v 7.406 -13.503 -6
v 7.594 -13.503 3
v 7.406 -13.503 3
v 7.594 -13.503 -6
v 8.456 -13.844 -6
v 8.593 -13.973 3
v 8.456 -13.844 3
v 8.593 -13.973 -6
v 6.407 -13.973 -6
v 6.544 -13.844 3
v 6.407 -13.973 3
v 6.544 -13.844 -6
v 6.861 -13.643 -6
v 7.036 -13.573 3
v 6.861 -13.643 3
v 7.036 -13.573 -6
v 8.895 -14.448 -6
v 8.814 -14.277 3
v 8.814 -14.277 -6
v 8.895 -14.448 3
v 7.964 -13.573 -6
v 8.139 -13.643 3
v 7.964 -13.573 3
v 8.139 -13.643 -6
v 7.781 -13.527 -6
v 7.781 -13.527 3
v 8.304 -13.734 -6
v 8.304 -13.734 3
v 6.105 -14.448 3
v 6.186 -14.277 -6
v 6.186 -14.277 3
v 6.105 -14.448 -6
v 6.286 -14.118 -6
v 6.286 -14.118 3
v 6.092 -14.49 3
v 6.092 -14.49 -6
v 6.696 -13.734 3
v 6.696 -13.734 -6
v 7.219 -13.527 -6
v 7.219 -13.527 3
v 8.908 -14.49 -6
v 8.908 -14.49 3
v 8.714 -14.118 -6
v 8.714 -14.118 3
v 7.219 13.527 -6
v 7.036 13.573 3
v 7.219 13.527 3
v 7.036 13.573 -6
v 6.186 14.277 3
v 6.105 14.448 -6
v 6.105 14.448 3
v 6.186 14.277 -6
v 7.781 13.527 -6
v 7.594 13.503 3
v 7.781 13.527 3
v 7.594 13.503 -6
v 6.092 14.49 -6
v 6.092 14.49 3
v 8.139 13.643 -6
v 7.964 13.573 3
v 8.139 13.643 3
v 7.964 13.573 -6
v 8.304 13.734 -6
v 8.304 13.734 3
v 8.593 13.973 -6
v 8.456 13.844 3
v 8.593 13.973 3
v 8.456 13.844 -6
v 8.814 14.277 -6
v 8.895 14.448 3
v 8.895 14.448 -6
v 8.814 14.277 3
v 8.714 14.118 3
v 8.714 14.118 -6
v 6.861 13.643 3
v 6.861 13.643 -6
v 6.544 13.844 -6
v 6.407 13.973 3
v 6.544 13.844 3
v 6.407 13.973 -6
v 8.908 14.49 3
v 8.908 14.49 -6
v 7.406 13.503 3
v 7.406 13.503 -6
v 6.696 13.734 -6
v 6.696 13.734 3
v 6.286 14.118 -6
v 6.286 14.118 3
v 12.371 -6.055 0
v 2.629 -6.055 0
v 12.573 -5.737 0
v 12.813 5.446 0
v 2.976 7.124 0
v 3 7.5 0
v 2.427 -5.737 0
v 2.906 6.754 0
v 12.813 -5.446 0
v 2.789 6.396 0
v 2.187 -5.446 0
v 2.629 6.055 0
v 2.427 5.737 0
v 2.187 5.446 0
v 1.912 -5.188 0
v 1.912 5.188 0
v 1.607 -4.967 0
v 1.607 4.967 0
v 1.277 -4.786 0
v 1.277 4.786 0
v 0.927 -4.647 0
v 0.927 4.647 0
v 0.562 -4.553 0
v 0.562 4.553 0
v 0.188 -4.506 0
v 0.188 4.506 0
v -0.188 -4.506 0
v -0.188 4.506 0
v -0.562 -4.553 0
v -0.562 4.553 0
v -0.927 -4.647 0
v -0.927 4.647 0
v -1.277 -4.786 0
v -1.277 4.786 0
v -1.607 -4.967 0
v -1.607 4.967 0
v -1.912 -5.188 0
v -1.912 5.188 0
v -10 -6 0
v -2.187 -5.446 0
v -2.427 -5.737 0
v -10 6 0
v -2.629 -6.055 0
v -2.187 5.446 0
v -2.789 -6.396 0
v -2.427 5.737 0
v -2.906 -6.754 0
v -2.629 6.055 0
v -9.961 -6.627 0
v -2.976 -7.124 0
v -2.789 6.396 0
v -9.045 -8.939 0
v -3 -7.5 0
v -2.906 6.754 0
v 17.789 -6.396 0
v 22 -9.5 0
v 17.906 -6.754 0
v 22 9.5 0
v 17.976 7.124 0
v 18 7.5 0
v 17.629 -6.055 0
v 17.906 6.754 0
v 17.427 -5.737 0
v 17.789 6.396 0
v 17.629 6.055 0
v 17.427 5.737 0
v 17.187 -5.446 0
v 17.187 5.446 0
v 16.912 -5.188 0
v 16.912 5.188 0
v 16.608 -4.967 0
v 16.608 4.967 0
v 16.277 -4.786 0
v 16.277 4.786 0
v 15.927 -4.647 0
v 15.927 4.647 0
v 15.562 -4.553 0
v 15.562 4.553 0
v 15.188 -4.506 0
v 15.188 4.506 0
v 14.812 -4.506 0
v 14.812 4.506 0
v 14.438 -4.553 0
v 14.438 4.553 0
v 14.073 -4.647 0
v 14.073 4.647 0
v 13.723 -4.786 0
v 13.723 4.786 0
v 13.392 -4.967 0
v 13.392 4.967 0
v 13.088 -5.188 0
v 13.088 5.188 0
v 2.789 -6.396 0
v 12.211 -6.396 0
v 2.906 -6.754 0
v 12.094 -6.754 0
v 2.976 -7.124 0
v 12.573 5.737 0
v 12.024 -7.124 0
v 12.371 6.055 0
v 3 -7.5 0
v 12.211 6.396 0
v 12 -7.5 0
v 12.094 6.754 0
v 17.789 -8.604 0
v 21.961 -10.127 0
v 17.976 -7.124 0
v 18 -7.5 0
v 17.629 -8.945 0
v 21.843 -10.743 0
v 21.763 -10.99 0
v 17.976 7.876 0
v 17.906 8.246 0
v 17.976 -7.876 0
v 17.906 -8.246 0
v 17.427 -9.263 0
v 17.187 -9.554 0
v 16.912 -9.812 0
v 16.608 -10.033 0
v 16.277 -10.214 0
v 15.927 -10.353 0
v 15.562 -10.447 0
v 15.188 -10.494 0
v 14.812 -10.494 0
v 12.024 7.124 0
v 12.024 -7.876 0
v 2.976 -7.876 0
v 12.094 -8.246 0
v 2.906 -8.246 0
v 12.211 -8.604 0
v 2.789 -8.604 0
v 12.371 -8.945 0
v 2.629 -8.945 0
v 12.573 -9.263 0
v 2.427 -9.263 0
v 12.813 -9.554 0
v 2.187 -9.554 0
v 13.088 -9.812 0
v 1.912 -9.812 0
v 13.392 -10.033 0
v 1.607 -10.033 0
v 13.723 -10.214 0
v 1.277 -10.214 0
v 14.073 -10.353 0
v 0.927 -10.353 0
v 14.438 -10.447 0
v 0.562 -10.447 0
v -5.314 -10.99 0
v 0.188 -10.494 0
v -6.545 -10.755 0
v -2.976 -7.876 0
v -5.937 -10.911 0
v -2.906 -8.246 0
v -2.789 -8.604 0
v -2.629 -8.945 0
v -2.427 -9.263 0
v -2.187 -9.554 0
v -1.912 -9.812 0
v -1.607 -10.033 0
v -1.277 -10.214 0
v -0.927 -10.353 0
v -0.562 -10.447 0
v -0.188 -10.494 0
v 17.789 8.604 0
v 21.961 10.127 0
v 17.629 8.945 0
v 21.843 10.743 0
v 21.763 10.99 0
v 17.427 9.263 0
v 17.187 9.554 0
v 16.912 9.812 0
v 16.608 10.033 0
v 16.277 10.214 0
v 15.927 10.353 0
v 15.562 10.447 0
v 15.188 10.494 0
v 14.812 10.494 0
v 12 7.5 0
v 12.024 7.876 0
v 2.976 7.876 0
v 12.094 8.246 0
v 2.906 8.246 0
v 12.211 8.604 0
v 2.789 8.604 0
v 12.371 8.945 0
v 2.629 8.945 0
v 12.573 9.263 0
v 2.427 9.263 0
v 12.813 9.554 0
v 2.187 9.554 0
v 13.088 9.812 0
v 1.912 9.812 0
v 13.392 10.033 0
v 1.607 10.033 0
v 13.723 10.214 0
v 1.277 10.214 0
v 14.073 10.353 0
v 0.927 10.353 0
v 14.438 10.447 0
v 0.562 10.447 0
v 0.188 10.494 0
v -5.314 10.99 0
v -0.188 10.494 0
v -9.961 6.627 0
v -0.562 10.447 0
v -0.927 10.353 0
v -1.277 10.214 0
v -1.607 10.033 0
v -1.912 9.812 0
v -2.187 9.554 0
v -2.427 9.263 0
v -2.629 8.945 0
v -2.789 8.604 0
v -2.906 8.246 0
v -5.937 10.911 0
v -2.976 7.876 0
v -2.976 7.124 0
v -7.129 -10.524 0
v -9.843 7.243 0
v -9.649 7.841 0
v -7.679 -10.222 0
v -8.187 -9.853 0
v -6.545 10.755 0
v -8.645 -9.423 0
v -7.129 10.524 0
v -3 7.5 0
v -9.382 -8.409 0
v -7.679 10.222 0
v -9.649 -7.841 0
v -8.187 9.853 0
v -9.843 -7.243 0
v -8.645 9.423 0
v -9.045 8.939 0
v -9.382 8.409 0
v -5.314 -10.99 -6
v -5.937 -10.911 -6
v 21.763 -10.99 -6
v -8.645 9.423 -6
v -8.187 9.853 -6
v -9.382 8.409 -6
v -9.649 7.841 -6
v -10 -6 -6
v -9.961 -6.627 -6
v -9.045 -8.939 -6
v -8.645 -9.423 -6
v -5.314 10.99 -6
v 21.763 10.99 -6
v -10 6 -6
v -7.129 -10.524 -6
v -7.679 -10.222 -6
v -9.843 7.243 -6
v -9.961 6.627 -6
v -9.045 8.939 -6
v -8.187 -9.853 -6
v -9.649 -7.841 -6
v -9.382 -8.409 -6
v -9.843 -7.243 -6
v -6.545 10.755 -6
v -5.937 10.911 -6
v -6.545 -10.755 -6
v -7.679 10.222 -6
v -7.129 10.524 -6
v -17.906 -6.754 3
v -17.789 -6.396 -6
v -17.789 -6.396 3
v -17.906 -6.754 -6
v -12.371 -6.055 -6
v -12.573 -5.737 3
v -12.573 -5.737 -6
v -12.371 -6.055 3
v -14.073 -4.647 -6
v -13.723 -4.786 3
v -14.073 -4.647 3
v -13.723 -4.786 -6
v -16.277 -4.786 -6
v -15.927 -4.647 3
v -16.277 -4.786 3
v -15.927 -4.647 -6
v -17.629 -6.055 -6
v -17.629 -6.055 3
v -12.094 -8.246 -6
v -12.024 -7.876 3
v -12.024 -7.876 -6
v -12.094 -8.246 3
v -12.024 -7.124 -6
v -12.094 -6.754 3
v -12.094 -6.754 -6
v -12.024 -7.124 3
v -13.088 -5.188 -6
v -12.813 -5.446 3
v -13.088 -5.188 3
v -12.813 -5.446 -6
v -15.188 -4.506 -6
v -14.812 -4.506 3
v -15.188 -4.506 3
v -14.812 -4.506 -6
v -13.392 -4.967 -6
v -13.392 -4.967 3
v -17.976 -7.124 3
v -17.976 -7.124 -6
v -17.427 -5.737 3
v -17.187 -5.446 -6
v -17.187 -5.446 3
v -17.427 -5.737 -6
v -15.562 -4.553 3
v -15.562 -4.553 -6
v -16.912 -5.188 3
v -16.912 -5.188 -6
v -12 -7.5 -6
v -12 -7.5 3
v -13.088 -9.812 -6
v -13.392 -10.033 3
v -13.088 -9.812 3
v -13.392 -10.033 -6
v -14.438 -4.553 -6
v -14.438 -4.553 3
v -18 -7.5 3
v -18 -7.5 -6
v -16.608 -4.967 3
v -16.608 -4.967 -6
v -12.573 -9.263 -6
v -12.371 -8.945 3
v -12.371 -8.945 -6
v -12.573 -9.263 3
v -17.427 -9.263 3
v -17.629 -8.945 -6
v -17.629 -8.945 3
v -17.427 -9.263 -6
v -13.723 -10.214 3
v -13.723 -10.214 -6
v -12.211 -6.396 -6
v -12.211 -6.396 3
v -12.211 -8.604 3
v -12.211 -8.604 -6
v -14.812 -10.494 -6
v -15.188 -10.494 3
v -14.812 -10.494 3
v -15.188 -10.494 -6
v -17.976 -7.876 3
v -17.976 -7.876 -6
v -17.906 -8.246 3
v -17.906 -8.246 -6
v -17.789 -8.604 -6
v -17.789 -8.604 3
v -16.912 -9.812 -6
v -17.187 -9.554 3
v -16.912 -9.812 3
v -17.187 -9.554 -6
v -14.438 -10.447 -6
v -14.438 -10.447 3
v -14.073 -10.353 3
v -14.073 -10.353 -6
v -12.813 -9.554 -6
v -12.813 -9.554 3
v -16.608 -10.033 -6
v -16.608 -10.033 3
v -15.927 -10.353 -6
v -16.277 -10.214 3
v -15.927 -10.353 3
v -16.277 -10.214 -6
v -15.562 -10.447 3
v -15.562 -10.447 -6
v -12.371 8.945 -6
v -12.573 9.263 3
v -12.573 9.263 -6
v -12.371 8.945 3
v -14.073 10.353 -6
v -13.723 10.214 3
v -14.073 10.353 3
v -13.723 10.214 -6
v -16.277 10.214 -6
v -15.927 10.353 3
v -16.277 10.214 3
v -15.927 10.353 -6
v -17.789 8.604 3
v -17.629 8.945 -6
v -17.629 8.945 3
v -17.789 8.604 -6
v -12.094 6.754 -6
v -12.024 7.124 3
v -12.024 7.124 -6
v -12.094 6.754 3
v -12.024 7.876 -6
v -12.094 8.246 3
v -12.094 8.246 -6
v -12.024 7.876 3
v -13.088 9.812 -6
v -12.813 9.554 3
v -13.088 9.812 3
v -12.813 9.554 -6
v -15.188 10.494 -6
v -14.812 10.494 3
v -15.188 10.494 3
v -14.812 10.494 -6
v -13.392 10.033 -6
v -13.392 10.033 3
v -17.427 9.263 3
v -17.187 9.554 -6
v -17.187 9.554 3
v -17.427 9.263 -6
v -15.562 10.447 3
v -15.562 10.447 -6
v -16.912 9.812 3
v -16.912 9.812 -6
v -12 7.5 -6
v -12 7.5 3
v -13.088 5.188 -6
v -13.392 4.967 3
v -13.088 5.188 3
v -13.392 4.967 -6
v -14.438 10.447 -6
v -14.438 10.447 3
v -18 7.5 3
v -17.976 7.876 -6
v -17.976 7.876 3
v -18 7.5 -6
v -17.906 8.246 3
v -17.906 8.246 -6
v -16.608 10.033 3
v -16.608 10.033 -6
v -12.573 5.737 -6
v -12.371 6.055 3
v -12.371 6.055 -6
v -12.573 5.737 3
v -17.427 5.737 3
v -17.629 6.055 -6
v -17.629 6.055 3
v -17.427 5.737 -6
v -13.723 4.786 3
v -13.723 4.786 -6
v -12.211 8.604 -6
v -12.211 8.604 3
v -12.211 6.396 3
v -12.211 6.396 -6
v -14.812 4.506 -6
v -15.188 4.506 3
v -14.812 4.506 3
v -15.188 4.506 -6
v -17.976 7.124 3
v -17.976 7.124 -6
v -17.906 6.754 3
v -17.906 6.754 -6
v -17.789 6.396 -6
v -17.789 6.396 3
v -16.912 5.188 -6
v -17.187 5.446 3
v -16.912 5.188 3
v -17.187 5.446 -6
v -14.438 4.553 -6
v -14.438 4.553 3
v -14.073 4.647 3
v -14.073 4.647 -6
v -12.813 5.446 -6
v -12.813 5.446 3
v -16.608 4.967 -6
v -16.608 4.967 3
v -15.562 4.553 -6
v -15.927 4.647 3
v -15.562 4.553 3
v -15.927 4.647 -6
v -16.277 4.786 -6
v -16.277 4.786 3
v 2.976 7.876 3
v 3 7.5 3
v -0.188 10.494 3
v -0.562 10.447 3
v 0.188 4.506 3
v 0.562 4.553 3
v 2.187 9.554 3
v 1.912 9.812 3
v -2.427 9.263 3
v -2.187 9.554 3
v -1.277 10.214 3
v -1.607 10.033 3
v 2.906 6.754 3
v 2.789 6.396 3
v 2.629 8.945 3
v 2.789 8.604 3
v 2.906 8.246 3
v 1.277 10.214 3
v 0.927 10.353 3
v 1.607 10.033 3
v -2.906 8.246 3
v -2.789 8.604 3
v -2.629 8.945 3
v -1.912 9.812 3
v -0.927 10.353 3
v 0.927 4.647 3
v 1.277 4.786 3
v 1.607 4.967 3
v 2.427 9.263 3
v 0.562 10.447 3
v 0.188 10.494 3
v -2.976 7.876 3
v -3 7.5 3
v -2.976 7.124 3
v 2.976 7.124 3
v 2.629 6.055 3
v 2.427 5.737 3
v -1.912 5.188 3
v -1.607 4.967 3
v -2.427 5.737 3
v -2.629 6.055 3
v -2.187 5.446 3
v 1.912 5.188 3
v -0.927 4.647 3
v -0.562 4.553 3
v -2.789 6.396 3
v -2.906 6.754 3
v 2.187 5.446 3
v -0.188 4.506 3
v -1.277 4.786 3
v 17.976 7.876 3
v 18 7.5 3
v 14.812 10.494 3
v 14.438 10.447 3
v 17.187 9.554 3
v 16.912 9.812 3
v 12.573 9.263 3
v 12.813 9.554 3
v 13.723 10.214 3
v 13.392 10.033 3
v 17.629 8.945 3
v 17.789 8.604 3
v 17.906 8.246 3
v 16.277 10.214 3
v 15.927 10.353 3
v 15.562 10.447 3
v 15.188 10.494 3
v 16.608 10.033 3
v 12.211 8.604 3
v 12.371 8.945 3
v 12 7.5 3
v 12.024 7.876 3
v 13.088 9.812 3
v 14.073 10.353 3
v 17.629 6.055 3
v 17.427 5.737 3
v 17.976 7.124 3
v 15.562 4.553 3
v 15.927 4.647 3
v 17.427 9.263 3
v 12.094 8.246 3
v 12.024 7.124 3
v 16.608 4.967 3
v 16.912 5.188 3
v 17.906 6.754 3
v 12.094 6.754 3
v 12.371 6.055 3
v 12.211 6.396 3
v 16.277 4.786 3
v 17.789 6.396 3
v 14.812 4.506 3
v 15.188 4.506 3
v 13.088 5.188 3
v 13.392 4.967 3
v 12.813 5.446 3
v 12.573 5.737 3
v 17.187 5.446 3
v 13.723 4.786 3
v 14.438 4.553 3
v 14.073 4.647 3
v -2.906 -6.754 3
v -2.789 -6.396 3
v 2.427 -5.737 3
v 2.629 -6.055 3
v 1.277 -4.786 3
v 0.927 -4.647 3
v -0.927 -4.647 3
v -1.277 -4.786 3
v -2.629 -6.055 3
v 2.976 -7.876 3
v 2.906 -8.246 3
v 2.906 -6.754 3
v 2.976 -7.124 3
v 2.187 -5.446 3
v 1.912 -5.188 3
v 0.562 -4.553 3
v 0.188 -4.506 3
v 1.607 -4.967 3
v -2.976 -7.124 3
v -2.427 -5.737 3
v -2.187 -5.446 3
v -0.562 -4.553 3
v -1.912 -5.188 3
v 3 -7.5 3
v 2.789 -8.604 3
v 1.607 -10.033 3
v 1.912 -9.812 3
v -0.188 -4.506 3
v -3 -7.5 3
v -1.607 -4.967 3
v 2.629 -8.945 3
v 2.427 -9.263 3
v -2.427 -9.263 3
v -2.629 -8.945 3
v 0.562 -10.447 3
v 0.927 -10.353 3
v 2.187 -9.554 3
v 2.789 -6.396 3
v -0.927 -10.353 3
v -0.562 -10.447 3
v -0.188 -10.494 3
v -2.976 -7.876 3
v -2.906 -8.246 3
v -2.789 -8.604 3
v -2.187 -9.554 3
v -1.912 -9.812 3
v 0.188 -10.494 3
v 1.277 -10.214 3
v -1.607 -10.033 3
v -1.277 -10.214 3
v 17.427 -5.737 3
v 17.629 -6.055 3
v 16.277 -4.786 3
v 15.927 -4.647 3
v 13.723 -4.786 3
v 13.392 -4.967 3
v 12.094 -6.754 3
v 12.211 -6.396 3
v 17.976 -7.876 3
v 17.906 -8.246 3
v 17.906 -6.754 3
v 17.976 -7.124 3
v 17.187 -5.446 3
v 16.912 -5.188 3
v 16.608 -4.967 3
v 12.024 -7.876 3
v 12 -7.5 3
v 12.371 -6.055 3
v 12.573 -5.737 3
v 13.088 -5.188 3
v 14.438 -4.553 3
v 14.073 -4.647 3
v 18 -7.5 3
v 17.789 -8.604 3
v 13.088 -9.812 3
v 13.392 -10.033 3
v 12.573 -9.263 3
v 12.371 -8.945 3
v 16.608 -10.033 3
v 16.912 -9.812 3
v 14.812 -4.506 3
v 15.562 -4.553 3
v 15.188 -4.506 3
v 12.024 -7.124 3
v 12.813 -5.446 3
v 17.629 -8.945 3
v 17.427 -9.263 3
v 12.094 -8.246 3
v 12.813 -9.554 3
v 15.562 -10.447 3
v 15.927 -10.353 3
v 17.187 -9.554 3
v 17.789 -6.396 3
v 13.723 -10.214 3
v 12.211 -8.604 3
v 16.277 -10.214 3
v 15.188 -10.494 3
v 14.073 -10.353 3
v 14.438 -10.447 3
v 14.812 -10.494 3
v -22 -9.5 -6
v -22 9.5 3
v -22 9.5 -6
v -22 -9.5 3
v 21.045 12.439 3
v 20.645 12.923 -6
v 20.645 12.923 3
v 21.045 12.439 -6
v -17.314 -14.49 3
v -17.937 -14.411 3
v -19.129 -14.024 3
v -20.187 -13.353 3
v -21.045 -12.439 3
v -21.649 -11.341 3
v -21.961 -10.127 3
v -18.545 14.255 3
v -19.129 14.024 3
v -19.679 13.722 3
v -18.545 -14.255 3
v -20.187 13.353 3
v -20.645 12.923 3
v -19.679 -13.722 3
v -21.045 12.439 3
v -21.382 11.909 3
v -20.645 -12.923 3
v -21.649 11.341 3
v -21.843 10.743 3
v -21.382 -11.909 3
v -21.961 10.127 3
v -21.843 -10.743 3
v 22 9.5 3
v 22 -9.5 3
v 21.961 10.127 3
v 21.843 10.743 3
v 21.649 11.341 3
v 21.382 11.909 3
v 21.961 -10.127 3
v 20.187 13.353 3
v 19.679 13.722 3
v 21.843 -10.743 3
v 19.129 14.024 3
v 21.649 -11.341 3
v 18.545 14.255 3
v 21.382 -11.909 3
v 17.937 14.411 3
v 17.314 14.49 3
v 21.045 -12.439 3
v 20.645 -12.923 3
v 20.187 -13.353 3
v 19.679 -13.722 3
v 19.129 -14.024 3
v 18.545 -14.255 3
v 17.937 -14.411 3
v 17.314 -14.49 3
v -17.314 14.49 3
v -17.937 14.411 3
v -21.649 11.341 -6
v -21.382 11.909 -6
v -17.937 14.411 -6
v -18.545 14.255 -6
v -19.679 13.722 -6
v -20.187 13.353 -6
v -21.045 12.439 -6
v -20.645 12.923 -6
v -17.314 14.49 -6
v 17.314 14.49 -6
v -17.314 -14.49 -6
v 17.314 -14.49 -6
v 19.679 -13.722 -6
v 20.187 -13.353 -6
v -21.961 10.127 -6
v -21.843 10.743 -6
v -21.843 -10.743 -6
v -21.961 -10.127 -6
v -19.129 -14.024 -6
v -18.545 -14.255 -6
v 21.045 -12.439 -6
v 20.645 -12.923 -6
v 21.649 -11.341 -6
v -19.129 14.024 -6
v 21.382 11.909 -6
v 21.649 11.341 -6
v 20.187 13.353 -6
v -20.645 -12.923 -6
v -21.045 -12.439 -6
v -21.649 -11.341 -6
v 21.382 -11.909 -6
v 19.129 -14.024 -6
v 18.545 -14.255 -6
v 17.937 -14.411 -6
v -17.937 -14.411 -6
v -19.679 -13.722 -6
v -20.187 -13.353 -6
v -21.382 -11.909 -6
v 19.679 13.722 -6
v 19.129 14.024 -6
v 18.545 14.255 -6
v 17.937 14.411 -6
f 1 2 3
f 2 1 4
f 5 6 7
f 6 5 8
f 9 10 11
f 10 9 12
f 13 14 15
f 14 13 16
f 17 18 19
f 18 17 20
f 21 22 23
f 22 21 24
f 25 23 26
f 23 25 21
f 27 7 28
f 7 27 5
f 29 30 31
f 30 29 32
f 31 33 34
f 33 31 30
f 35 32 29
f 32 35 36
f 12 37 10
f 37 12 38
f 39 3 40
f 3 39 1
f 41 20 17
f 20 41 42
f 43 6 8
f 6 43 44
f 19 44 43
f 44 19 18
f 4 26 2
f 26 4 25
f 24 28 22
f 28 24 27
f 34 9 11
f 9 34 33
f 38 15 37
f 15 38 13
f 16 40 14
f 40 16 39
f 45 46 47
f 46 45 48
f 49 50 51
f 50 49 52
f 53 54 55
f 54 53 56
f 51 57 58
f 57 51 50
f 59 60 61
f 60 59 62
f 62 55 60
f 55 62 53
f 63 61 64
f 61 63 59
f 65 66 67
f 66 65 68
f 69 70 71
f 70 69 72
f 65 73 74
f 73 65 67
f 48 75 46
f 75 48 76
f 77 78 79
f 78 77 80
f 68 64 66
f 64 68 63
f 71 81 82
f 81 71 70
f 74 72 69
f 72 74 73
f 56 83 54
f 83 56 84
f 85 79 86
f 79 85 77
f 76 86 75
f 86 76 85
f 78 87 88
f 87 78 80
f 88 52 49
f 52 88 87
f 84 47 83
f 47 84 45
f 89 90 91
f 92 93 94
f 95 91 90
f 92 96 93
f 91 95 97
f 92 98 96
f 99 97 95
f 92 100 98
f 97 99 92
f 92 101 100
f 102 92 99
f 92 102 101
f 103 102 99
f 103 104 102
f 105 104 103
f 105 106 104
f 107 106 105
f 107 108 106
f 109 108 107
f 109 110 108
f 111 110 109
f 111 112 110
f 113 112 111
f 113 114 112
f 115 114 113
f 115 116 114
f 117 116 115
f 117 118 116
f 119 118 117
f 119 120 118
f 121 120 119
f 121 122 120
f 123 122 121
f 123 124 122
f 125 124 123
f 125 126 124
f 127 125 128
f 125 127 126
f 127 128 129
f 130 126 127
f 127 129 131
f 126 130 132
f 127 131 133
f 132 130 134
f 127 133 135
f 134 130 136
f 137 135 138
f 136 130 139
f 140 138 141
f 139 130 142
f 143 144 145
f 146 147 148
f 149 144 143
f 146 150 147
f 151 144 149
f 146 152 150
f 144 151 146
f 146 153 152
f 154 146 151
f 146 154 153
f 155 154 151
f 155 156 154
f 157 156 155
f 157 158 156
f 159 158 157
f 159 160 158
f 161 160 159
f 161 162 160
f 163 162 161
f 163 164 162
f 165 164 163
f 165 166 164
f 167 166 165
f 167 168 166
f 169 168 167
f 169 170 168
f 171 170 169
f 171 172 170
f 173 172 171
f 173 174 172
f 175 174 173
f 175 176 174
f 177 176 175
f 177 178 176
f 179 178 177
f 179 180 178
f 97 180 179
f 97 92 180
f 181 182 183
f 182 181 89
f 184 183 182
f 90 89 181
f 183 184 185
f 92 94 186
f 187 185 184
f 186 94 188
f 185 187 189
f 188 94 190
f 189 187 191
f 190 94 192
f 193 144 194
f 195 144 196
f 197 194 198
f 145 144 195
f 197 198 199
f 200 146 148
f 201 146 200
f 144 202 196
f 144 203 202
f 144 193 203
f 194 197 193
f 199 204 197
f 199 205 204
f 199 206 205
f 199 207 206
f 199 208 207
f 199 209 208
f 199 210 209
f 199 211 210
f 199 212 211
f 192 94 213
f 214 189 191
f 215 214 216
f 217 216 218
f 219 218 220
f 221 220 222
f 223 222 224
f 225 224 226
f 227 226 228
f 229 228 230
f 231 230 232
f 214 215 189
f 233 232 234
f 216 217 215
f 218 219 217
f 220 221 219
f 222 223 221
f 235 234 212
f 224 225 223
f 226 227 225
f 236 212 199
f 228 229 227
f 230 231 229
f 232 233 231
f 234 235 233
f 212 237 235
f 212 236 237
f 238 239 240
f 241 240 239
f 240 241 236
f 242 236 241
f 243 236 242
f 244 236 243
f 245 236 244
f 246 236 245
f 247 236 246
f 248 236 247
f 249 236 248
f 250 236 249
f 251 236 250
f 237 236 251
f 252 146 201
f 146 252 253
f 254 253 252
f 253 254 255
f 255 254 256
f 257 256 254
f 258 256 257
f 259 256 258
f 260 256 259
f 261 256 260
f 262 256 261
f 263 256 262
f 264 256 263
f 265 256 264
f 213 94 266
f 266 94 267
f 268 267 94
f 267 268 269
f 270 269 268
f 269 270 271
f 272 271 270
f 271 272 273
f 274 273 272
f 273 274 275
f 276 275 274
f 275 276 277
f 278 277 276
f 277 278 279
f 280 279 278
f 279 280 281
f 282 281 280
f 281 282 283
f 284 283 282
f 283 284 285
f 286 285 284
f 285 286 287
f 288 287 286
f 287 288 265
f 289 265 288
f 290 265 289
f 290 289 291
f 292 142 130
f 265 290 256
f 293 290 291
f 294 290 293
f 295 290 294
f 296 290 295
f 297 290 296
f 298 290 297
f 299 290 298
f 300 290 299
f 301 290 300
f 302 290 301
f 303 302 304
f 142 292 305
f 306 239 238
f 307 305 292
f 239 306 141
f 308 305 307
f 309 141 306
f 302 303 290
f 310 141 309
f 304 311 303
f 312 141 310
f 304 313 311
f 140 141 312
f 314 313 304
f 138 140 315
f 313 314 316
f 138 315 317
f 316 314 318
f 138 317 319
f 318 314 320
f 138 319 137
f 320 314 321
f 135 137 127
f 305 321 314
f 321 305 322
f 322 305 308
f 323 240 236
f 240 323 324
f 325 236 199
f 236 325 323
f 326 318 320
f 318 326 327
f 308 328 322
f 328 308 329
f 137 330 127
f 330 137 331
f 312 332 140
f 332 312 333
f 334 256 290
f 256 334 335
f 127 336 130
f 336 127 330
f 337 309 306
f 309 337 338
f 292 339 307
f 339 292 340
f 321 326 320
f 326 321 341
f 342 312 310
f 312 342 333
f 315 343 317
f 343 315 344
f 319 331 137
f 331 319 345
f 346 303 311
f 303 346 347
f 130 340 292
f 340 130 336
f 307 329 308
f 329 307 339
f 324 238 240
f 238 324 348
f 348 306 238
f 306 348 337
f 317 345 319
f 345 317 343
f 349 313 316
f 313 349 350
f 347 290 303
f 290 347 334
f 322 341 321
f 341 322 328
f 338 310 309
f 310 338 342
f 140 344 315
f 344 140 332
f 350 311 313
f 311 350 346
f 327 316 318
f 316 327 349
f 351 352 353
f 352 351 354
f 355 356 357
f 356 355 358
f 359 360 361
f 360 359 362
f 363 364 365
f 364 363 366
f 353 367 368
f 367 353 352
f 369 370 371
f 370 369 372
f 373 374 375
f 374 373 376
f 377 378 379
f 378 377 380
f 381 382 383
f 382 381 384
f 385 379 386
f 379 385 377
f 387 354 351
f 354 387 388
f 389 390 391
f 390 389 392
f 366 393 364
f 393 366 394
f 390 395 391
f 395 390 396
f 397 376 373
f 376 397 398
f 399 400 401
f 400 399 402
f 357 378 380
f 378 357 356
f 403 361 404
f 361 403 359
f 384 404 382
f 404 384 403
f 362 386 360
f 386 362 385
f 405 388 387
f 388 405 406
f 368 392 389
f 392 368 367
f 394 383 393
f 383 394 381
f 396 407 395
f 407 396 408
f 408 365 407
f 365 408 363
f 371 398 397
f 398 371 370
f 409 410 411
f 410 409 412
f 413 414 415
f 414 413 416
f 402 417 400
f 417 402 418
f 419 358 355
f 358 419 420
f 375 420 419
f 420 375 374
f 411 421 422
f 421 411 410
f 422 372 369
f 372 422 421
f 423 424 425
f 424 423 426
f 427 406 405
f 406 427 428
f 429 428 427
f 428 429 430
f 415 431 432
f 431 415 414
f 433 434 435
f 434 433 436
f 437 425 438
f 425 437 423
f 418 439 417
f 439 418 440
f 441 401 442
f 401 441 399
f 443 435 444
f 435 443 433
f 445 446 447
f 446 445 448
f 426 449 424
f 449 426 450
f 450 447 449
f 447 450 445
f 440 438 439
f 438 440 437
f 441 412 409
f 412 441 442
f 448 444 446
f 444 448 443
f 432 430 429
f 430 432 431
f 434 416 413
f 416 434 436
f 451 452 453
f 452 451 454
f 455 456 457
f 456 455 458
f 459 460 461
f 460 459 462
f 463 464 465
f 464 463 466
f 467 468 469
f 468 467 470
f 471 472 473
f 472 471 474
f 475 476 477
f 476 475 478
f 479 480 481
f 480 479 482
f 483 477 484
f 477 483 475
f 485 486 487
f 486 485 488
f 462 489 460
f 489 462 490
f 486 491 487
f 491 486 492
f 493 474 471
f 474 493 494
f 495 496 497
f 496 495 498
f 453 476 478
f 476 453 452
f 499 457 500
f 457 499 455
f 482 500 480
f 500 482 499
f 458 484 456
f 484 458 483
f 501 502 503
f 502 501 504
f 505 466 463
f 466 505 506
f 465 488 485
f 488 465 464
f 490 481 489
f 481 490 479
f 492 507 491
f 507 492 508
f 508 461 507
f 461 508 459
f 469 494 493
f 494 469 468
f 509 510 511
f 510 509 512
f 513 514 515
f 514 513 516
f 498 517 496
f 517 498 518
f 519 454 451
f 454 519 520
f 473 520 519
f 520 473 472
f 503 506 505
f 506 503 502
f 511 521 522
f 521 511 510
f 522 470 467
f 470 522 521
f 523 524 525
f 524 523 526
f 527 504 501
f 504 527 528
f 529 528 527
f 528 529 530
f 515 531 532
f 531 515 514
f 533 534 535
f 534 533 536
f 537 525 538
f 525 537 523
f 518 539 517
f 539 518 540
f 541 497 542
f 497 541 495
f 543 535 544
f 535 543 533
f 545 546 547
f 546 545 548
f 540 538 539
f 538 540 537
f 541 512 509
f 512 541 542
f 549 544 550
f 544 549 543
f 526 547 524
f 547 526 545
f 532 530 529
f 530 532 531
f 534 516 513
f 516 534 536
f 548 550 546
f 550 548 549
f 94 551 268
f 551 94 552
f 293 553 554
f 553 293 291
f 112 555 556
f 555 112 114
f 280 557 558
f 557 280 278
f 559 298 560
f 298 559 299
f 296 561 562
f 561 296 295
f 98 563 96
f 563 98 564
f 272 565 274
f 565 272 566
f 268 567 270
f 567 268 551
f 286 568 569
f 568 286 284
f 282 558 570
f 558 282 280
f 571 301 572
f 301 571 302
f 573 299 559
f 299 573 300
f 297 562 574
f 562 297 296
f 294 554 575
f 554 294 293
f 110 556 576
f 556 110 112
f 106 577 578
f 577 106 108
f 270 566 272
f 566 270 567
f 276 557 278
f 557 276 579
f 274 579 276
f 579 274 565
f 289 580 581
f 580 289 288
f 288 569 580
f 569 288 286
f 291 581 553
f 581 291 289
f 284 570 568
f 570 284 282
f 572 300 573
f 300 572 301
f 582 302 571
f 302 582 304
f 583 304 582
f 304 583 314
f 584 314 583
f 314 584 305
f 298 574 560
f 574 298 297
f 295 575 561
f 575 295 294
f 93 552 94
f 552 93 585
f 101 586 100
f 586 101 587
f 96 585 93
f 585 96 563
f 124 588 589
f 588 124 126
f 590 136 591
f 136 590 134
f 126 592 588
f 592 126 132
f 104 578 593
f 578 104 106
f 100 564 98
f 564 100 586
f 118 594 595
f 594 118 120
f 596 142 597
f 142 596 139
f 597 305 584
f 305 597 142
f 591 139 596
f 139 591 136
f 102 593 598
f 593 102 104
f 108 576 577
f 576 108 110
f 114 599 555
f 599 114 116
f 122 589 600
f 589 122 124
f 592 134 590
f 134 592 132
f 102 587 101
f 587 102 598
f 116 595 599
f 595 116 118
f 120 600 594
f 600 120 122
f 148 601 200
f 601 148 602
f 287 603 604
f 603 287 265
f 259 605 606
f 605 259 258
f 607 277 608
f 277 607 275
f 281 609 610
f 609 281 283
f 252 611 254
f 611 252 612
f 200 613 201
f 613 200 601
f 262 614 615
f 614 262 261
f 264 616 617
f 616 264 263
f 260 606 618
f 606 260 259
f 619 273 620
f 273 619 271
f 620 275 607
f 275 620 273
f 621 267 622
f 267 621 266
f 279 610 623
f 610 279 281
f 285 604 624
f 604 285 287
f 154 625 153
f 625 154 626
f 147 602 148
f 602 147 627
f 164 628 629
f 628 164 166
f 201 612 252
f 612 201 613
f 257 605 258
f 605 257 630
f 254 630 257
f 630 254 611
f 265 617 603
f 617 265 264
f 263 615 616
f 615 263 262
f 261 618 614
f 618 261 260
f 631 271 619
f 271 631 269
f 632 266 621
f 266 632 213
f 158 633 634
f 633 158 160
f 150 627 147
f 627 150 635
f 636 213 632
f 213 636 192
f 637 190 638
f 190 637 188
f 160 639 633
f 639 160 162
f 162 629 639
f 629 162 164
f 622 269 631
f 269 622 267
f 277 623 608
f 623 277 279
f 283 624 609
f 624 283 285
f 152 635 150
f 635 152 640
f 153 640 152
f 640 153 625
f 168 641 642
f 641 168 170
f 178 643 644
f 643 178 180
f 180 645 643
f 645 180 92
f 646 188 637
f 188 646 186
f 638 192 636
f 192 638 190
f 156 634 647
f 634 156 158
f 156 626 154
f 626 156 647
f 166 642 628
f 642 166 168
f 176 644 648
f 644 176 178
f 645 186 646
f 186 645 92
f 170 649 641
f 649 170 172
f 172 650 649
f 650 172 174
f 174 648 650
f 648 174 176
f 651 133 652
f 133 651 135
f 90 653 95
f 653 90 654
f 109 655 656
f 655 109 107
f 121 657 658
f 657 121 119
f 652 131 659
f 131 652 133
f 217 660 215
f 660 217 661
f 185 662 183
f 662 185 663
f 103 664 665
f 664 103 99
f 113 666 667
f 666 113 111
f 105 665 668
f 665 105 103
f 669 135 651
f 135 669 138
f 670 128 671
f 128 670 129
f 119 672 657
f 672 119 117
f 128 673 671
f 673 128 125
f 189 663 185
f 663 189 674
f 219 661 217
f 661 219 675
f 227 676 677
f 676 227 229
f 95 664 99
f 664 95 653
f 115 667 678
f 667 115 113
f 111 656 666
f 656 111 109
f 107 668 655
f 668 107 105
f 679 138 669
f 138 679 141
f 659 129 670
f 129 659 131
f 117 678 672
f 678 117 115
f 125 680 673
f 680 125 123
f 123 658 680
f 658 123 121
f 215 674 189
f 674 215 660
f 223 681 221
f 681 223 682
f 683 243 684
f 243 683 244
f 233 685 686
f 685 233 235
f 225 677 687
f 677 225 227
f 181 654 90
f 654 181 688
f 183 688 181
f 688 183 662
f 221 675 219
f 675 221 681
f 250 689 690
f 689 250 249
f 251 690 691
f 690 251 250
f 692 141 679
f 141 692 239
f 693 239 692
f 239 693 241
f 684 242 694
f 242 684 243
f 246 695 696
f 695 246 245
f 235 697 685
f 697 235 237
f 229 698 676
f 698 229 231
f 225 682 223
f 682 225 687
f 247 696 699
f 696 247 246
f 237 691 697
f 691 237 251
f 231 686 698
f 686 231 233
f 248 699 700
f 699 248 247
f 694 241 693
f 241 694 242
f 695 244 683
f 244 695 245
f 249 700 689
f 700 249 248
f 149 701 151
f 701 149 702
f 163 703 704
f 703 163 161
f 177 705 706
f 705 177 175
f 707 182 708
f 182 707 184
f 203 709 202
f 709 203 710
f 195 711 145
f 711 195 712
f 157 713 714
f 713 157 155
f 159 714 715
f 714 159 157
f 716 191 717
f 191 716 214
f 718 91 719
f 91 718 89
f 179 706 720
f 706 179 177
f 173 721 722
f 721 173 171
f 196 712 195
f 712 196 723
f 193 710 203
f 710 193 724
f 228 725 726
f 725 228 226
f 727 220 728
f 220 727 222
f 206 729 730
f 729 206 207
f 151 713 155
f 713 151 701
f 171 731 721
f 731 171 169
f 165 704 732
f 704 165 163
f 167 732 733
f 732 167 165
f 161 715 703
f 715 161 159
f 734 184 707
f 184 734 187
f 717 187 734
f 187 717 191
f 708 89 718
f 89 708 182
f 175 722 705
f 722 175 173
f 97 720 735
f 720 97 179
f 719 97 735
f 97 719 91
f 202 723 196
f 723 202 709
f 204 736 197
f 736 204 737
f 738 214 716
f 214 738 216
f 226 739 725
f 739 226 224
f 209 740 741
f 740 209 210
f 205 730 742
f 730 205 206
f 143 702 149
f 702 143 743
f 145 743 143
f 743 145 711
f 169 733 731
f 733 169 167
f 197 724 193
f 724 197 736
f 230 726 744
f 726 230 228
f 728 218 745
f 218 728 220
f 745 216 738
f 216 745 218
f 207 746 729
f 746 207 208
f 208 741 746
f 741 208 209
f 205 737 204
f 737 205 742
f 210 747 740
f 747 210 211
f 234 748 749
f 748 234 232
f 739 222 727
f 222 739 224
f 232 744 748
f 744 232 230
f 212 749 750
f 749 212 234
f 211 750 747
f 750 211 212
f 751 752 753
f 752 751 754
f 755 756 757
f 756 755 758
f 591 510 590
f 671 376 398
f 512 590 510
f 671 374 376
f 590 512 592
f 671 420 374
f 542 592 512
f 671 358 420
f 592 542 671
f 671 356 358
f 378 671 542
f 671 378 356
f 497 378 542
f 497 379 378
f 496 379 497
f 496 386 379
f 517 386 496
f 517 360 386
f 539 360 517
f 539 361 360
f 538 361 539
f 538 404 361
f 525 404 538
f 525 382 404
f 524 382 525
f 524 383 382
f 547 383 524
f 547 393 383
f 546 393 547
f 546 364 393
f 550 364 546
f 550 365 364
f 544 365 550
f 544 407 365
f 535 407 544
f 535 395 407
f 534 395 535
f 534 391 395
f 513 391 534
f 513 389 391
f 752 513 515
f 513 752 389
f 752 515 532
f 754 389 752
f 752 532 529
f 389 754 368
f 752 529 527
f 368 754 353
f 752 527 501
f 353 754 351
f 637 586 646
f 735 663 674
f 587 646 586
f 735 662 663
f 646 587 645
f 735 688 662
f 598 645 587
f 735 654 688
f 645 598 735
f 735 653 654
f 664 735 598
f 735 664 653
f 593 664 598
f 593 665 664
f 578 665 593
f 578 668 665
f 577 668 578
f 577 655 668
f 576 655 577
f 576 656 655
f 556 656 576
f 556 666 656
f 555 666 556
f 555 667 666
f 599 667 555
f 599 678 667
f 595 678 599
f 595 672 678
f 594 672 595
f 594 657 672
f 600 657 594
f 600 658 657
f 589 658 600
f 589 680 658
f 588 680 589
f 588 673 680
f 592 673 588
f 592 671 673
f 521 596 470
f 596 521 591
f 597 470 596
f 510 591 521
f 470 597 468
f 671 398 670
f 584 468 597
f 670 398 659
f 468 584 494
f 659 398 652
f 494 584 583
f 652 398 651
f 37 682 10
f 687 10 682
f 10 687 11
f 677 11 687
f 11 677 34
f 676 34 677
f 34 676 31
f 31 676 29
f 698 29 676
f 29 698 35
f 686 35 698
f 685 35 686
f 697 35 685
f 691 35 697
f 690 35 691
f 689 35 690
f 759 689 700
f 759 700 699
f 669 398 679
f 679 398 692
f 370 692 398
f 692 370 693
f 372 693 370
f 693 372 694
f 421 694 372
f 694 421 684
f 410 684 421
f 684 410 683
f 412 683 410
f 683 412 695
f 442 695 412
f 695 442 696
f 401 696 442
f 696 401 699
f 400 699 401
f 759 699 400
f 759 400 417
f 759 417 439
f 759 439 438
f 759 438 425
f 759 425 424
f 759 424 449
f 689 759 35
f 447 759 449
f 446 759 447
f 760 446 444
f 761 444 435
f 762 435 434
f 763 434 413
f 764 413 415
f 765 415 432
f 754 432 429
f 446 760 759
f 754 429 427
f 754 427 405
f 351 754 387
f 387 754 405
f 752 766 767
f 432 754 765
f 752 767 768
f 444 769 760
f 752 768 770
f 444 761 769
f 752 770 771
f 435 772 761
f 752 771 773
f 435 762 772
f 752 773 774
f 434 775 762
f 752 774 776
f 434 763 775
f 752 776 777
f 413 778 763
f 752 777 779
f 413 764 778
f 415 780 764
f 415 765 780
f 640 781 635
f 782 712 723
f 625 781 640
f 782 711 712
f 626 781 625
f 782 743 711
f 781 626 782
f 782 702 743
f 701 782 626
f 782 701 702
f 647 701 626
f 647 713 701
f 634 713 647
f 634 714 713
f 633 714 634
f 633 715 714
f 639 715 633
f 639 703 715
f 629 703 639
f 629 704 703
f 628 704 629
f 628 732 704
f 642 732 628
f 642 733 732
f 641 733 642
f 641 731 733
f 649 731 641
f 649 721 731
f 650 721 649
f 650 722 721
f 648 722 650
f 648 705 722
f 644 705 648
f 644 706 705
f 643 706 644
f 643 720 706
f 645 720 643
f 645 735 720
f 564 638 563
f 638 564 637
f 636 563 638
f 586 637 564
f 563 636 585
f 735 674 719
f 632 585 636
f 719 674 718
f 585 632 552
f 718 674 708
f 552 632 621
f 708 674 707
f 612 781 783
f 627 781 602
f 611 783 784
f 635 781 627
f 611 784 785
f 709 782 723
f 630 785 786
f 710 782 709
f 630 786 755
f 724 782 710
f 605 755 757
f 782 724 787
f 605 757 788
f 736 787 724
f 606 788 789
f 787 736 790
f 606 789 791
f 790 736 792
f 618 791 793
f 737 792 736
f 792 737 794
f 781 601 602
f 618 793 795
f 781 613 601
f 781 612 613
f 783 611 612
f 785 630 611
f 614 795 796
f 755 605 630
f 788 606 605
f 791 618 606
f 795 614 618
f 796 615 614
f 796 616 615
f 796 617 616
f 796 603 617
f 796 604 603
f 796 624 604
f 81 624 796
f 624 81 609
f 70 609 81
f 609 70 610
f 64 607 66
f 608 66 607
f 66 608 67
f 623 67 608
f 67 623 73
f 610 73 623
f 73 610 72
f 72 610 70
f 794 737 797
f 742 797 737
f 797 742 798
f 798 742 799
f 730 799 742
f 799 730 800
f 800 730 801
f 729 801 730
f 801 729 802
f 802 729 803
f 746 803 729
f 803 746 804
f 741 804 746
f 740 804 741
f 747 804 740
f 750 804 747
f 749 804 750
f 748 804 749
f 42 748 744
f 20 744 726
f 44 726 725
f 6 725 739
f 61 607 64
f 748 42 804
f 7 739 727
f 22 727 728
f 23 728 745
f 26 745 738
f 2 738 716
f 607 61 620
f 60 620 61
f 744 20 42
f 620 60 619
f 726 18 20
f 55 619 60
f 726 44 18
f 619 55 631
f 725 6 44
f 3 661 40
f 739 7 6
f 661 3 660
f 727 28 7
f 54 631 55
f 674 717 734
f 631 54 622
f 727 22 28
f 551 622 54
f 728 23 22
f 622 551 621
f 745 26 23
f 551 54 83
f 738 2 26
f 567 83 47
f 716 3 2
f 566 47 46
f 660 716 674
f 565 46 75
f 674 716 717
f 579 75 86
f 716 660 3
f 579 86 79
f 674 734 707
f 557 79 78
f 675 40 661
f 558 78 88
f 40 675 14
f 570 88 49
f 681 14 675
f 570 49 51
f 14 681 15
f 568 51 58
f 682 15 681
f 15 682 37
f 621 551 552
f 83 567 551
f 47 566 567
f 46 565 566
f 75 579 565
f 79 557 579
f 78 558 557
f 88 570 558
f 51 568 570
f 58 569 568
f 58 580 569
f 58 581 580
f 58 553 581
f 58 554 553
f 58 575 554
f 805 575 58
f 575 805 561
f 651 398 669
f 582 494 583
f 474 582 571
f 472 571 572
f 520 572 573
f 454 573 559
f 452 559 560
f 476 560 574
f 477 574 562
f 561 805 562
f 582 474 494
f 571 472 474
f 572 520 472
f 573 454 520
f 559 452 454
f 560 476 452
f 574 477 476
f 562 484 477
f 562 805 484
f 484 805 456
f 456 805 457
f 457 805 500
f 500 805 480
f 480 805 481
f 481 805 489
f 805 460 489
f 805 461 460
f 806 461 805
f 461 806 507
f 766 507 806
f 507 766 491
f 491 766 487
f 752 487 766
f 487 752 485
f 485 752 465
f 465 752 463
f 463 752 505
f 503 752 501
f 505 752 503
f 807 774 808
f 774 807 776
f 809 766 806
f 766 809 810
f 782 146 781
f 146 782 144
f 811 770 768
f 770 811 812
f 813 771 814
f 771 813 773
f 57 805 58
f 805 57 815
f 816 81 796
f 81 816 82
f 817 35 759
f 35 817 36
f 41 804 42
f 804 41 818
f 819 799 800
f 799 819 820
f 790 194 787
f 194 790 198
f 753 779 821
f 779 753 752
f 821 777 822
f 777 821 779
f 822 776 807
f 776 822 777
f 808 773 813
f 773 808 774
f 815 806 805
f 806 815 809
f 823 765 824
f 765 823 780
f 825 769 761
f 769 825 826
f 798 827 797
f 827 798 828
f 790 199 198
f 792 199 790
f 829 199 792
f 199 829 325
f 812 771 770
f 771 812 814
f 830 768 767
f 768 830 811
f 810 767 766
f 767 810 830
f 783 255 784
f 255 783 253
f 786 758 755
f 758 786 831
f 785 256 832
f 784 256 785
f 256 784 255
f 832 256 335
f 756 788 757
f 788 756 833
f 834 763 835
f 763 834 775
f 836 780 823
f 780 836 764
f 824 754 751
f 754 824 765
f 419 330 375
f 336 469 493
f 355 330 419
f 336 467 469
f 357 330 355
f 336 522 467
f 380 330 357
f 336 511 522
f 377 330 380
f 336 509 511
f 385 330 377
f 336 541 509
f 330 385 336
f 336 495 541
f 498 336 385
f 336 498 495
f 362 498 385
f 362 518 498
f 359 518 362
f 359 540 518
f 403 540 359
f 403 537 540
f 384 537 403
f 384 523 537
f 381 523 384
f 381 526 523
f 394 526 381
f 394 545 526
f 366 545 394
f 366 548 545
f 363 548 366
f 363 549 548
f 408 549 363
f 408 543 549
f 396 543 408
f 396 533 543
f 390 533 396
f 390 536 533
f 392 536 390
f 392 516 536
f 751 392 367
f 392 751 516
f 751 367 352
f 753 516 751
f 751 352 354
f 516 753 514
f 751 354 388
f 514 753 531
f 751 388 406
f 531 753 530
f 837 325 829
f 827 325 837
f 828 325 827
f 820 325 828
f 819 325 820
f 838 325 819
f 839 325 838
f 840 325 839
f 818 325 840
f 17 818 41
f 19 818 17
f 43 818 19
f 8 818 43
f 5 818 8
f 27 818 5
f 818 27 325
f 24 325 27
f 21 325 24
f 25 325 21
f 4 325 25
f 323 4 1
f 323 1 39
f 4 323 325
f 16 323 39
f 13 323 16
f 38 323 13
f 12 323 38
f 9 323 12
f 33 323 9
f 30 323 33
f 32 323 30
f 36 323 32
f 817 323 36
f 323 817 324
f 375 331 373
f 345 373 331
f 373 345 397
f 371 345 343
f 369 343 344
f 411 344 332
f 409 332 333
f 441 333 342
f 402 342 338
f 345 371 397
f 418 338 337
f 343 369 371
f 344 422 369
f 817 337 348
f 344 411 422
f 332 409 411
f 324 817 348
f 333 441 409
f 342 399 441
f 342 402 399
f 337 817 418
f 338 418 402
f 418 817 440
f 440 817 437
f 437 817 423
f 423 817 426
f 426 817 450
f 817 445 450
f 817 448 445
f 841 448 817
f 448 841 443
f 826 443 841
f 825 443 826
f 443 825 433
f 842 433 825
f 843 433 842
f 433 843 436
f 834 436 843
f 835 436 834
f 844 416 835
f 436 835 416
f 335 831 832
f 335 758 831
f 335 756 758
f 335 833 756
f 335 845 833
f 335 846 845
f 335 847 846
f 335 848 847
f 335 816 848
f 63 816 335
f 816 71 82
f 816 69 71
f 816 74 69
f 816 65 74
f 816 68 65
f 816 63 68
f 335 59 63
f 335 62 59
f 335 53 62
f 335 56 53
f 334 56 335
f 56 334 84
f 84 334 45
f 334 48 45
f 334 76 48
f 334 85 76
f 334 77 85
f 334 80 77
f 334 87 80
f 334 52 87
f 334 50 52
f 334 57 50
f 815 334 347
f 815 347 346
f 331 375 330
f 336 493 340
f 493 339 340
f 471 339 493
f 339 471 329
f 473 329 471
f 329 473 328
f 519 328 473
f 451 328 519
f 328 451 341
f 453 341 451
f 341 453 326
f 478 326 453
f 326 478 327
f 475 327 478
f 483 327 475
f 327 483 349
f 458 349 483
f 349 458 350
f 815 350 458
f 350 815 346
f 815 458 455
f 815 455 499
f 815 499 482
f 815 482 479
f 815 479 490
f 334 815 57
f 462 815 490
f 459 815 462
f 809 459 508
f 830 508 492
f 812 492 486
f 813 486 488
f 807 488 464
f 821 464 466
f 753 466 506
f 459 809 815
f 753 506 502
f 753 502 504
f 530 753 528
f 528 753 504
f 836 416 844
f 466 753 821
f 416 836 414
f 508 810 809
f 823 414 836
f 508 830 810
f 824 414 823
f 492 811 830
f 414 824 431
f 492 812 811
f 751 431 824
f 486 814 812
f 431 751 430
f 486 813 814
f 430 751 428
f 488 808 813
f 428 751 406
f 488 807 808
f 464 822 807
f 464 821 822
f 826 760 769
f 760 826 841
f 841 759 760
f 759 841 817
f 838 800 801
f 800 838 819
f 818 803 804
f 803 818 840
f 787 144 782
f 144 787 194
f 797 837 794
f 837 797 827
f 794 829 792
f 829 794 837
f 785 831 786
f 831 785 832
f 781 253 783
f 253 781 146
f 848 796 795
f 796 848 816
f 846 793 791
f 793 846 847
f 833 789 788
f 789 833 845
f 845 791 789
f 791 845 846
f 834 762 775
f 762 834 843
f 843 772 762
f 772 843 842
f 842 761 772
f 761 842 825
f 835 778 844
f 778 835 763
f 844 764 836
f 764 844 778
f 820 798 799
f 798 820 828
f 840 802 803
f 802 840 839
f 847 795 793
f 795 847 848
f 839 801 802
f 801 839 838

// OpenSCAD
$fn = 50;


difference() {
	union() {
		translate(v = [0, 0, -6]) {
			hull() {
				translate(v = [-17.0000000000, 9.5000000000, 0]) {
					cylinder(h = 9, r = 5);
				}
				translate(v = [17.0000000000, 9.5000000000, 0]) {
					cylinder(h = 9, r = 5);
				}
				translate(v = [-17.0000000000, -9.5000000000, 0]) {
					cylinder(h = 9, r = 5);
				}
				translate(v = [17.0000000000, -9.5000000000, 0]) {
					cylinder(h = 9, r = 5);
				}
			}
		}
	}
	union() {
		translate(v = [7.5000000000, -15, -9]) {
			rotate(a = [0, 0, 0]) {
				difference() {
					union() {
						linear_extrude(height = 2.5000000000) {
							polygon(points = [[3.1735000000, 0.0000000000], [1.5867500000, 2.7483316189], [-1.5867500000, 2.7483316189], [-3.1735000000, 0.0000000000], [-1.5867500000, -2.7483316189], [1.5867500000, -2.7483316189]]);
						}
						translate(v = [0, 0, -50.0000000000]) {
							cylinder(h = 100, r = 1.5000000000);
						}
						translate(v = [0, 0, -50.0000000000]) {
							cylinder(h = 100, r = 1.5000000000);
						}
						translate(v = [0, 0, -50.0000000000]) {
							cylinder(h = 100, r = 1.5000000000);
						}
					}
					union();
				}
			}
		}
		translate(v = [7.5000000000, 15, -9]) {
			rotate(a = [0, 0, 0]) {
				difference() {
					union() {
						linear_extrude(height = 2.5000000000) {
							polygon(points = [[3.1735000000, 0.0000000000], [1.5867500000, 2.7483316189], [-1.5867500000, 2.7483316189], [-3.1735000000, 0.0000000000], [-1.5867500000, -2.7483316189], [1.5867500000, -2.7483316189]]);
						}
						translate(v = [0, 0, -50.0000000000]) {
							cylinder(h = 100, r = 1.5000000000);
						}
						translate(v = [0, 0, -50.0000000000]) {
							cylinder(h = 100, r = 1.5000000000);
						}
						translate(v = [0, 0, -50.0000000000]) {
							cylinder(h = 100, r = 1.5000000000);
						}
					}
					union();
				}
			}
		}
		translate(v = [0, 0, -3]) {
			rotate(a = [0, 0, 180]) {
				difference() {
					union() {
						translate(v = [-10, 0, -6]) {
							#hull() {
								translate(v = [-15.0000000000, 6.0000000000, 0]) {
									cylinder(h = 9, r = 5);
								}
								translate(v = [15.0000000000, 6.0000000000, 0]) {
									cylinder(h = 9, r = 5);
								}
								translate(v = [-15.0000000000, -6.0000000000, 0]) {
									cylinder(h = 9, r = 5);
								}
								translate(v = [15.0000000000, -6.0000000000, 0]) {
									cylinder(h = 9, r = 5);
								}
							}
						}
					}
					union();
				}
			}
		}
		translate(v = [-15.0000000000, -7.5000000000, -50.0000000000]) {
			cylinder(h = 100, r = 3.0000000000);
		}
		translate(v = [-15.0000000000, 7.5000000000, -50.0000000000]) {
			cylinder(h = 100, r = 3.0000000000);
		}
		translate(v = [-15.0000000000, 7.5000000000, -50.0000000000]) {
			cylinder(h = 100, r = 3.0000000000);
		}
		translate(v = [0.0000000000, 7.5000000000, -50.0000000000]) {
			cylinder(h = 100, r = 3.0000000000);
		}
		translate(v = [15.0000000000, 7.5000000000, -50.0000000000]) {
			cylinder(h = 100, r = 3.0000000000);
		}
		translate(v = [-15.0000000000, -7.5000000000, -50.0000000000]) {
			cylinder(h = 100, r = 3.0000000000);
		}
		translate(v = [0.0000000000, -7.5000000000, -50.0000000000]) {
			cylinder(h = 100, r = 3.0000000000);
		}
		translate(v = [15.0000000000, -7.5000000000, -50.0000000000]) {
			cylinder(h = 100, r = 3.0000000000);
		}
	}
}
